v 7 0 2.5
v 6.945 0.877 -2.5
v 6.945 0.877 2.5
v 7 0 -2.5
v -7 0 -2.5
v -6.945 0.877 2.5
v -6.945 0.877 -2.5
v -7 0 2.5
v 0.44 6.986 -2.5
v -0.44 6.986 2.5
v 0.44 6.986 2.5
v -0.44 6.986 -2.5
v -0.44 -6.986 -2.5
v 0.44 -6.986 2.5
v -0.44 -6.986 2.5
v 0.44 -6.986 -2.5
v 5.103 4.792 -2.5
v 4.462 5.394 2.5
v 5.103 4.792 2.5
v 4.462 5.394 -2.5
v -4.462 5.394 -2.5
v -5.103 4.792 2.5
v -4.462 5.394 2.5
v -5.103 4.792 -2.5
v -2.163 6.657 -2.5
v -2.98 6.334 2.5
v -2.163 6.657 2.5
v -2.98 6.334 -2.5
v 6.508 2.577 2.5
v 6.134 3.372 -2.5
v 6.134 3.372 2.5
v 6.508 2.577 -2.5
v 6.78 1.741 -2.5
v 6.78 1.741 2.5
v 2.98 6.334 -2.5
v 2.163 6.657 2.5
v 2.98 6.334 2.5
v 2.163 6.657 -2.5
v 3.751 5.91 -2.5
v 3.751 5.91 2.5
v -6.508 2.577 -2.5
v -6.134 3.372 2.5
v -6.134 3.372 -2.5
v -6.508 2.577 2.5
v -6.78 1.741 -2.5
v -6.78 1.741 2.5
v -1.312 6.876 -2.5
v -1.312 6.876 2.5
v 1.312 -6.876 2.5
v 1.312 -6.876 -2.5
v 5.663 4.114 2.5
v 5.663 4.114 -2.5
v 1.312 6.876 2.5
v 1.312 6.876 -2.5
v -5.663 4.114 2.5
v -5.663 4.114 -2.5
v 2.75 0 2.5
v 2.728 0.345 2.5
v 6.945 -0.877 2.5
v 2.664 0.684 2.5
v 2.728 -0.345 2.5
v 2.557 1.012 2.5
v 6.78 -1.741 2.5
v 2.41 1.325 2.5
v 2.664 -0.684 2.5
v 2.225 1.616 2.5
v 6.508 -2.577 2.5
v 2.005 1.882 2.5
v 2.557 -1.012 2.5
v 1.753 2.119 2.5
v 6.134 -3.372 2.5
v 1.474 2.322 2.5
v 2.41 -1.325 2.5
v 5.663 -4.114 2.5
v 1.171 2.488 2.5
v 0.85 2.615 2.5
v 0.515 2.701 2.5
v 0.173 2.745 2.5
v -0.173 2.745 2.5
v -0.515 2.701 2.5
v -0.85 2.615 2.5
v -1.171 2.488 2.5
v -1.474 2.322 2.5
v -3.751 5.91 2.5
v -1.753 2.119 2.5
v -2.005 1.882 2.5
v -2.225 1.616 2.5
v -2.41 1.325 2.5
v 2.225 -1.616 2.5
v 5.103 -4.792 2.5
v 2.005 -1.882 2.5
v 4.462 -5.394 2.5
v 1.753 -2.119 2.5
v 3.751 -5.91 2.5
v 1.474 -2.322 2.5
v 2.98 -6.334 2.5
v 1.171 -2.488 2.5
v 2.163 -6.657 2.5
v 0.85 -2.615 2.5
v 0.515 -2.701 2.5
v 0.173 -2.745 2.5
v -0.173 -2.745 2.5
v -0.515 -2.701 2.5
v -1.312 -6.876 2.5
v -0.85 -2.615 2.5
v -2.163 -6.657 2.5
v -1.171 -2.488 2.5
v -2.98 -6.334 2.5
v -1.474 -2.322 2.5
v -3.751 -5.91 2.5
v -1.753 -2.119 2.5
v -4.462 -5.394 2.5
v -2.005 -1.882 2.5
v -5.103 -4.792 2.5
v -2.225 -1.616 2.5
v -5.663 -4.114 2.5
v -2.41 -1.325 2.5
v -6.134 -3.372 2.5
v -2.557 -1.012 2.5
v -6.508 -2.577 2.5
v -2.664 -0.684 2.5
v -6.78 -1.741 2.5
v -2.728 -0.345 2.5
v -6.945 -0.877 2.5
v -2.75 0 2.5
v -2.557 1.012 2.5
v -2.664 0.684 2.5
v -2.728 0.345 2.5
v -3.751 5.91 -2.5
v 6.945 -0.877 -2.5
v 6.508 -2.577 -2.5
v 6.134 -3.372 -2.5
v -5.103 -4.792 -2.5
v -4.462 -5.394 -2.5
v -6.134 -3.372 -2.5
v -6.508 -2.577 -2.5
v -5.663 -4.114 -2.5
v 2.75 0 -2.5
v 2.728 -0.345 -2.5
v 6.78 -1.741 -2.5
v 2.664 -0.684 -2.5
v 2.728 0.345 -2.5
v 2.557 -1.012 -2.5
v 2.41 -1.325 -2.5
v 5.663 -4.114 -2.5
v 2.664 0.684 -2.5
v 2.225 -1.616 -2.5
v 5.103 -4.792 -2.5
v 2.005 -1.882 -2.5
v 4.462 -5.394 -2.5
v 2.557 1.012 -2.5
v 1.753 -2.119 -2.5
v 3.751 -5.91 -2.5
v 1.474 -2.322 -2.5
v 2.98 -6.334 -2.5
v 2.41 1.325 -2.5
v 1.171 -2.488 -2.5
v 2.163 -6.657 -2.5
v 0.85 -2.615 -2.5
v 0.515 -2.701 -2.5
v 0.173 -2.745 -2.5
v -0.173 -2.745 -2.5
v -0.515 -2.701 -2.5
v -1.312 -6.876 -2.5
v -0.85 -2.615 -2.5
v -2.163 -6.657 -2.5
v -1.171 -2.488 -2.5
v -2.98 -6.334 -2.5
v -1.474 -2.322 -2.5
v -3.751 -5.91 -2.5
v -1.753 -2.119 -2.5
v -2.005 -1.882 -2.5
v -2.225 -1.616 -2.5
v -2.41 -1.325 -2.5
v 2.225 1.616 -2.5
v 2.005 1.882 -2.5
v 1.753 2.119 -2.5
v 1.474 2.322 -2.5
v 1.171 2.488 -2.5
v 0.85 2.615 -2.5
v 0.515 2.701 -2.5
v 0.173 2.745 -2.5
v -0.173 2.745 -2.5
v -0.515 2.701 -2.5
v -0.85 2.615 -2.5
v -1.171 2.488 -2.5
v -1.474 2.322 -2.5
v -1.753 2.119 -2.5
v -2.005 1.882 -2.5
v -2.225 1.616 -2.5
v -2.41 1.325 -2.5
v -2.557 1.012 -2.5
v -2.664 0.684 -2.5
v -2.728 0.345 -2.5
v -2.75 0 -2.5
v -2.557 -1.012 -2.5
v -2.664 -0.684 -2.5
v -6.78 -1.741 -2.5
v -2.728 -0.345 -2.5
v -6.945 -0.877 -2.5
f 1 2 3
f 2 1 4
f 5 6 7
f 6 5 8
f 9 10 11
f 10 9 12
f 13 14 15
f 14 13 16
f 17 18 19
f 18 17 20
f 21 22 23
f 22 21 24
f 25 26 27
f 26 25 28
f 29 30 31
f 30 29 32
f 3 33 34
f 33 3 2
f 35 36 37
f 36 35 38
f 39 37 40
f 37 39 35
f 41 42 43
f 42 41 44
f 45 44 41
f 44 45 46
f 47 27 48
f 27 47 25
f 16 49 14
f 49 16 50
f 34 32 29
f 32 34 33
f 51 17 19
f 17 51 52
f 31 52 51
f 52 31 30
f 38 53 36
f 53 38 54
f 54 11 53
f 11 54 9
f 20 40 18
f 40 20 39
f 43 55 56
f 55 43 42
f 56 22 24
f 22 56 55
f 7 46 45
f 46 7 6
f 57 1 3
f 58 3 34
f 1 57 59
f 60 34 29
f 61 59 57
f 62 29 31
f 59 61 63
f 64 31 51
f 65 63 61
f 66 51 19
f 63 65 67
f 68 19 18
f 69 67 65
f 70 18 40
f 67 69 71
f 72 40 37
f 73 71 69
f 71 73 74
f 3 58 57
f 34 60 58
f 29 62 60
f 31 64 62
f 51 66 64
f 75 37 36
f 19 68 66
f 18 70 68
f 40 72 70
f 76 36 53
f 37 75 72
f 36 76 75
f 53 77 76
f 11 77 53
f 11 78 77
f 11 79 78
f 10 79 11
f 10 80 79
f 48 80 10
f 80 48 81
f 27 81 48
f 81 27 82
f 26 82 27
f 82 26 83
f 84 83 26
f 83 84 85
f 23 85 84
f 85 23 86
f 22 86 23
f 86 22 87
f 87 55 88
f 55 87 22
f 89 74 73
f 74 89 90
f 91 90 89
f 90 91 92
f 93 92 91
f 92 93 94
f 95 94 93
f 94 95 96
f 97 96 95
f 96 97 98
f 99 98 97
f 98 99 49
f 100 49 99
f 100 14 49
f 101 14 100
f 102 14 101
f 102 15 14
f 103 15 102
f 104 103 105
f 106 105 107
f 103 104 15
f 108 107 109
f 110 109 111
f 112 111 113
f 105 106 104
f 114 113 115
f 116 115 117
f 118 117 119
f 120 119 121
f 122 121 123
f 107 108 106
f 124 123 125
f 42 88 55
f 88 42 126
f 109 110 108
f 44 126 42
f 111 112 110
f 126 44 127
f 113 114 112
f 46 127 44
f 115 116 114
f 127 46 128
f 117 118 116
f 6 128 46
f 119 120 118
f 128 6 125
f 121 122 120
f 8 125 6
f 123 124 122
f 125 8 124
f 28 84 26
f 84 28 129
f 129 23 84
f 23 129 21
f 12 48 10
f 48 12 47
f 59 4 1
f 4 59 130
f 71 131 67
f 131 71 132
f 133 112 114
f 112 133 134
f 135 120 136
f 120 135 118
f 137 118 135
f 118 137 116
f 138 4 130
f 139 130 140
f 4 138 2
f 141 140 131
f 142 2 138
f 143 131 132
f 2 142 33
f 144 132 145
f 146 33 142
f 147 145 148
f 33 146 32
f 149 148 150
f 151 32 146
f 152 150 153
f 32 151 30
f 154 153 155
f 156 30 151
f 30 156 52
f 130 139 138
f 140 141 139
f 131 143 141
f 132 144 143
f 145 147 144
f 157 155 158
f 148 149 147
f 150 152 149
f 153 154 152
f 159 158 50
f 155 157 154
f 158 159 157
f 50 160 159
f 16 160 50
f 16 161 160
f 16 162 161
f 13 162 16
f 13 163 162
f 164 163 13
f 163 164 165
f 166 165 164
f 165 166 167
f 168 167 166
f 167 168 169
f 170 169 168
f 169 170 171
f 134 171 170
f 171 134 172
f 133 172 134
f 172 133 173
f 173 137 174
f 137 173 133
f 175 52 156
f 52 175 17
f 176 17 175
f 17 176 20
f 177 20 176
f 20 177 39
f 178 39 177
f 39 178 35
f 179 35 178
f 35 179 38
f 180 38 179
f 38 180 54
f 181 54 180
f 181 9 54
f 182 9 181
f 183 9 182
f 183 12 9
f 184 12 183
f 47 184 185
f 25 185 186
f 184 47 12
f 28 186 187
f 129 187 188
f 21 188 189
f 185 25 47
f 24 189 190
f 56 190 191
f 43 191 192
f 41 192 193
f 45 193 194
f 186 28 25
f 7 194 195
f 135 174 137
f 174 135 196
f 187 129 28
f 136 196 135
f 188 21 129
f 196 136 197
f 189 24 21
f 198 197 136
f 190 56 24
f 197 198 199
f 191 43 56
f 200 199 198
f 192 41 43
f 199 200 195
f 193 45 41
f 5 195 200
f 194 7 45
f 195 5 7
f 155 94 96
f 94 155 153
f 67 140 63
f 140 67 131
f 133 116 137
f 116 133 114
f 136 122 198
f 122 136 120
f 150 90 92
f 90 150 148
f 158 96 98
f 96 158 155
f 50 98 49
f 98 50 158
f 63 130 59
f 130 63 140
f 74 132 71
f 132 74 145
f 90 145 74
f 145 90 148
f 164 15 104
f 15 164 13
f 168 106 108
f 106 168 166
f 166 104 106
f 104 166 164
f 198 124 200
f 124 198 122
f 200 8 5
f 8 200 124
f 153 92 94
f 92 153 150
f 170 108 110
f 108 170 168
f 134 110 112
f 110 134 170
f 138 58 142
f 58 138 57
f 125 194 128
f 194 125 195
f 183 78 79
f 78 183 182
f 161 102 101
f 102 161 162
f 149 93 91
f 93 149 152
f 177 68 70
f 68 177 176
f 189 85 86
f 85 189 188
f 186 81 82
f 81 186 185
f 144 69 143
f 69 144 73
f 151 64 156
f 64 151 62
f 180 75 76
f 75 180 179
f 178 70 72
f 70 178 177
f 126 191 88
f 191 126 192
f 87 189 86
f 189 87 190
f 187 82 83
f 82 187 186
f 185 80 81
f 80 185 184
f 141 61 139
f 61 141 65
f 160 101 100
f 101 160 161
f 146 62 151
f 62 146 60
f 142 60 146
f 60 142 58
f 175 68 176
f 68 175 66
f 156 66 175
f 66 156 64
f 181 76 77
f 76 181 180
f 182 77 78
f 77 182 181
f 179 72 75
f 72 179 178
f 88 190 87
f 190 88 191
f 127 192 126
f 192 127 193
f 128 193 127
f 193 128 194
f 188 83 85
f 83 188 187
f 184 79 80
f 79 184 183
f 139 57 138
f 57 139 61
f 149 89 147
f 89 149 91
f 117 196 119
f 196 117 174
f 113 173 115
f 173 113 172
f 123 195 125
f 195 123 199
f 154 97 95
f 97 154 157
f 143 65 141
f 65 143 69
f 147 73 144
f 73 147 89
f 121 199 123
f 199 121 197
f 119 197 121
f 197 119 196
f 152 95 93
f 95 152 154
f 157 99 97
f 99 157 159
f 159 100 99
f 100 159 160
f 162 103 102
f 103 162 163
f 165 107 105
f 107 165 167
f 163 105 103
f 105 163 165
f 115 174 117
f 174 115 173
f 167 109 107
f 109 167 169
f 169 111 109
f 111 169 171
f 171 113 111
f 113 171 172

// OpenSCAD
$fn = 50;


difference() {
	union() {
		translate(v = [0, 0, -2.5000000000]) {
			cylinder(h = 5, r = 7.0000000000);
		}
	}
	union() {
		translate(v = [0, 0, -100.0000000000]) {
			cylinder(h = 200, r = 2.7500000000);
		}
	}
}
